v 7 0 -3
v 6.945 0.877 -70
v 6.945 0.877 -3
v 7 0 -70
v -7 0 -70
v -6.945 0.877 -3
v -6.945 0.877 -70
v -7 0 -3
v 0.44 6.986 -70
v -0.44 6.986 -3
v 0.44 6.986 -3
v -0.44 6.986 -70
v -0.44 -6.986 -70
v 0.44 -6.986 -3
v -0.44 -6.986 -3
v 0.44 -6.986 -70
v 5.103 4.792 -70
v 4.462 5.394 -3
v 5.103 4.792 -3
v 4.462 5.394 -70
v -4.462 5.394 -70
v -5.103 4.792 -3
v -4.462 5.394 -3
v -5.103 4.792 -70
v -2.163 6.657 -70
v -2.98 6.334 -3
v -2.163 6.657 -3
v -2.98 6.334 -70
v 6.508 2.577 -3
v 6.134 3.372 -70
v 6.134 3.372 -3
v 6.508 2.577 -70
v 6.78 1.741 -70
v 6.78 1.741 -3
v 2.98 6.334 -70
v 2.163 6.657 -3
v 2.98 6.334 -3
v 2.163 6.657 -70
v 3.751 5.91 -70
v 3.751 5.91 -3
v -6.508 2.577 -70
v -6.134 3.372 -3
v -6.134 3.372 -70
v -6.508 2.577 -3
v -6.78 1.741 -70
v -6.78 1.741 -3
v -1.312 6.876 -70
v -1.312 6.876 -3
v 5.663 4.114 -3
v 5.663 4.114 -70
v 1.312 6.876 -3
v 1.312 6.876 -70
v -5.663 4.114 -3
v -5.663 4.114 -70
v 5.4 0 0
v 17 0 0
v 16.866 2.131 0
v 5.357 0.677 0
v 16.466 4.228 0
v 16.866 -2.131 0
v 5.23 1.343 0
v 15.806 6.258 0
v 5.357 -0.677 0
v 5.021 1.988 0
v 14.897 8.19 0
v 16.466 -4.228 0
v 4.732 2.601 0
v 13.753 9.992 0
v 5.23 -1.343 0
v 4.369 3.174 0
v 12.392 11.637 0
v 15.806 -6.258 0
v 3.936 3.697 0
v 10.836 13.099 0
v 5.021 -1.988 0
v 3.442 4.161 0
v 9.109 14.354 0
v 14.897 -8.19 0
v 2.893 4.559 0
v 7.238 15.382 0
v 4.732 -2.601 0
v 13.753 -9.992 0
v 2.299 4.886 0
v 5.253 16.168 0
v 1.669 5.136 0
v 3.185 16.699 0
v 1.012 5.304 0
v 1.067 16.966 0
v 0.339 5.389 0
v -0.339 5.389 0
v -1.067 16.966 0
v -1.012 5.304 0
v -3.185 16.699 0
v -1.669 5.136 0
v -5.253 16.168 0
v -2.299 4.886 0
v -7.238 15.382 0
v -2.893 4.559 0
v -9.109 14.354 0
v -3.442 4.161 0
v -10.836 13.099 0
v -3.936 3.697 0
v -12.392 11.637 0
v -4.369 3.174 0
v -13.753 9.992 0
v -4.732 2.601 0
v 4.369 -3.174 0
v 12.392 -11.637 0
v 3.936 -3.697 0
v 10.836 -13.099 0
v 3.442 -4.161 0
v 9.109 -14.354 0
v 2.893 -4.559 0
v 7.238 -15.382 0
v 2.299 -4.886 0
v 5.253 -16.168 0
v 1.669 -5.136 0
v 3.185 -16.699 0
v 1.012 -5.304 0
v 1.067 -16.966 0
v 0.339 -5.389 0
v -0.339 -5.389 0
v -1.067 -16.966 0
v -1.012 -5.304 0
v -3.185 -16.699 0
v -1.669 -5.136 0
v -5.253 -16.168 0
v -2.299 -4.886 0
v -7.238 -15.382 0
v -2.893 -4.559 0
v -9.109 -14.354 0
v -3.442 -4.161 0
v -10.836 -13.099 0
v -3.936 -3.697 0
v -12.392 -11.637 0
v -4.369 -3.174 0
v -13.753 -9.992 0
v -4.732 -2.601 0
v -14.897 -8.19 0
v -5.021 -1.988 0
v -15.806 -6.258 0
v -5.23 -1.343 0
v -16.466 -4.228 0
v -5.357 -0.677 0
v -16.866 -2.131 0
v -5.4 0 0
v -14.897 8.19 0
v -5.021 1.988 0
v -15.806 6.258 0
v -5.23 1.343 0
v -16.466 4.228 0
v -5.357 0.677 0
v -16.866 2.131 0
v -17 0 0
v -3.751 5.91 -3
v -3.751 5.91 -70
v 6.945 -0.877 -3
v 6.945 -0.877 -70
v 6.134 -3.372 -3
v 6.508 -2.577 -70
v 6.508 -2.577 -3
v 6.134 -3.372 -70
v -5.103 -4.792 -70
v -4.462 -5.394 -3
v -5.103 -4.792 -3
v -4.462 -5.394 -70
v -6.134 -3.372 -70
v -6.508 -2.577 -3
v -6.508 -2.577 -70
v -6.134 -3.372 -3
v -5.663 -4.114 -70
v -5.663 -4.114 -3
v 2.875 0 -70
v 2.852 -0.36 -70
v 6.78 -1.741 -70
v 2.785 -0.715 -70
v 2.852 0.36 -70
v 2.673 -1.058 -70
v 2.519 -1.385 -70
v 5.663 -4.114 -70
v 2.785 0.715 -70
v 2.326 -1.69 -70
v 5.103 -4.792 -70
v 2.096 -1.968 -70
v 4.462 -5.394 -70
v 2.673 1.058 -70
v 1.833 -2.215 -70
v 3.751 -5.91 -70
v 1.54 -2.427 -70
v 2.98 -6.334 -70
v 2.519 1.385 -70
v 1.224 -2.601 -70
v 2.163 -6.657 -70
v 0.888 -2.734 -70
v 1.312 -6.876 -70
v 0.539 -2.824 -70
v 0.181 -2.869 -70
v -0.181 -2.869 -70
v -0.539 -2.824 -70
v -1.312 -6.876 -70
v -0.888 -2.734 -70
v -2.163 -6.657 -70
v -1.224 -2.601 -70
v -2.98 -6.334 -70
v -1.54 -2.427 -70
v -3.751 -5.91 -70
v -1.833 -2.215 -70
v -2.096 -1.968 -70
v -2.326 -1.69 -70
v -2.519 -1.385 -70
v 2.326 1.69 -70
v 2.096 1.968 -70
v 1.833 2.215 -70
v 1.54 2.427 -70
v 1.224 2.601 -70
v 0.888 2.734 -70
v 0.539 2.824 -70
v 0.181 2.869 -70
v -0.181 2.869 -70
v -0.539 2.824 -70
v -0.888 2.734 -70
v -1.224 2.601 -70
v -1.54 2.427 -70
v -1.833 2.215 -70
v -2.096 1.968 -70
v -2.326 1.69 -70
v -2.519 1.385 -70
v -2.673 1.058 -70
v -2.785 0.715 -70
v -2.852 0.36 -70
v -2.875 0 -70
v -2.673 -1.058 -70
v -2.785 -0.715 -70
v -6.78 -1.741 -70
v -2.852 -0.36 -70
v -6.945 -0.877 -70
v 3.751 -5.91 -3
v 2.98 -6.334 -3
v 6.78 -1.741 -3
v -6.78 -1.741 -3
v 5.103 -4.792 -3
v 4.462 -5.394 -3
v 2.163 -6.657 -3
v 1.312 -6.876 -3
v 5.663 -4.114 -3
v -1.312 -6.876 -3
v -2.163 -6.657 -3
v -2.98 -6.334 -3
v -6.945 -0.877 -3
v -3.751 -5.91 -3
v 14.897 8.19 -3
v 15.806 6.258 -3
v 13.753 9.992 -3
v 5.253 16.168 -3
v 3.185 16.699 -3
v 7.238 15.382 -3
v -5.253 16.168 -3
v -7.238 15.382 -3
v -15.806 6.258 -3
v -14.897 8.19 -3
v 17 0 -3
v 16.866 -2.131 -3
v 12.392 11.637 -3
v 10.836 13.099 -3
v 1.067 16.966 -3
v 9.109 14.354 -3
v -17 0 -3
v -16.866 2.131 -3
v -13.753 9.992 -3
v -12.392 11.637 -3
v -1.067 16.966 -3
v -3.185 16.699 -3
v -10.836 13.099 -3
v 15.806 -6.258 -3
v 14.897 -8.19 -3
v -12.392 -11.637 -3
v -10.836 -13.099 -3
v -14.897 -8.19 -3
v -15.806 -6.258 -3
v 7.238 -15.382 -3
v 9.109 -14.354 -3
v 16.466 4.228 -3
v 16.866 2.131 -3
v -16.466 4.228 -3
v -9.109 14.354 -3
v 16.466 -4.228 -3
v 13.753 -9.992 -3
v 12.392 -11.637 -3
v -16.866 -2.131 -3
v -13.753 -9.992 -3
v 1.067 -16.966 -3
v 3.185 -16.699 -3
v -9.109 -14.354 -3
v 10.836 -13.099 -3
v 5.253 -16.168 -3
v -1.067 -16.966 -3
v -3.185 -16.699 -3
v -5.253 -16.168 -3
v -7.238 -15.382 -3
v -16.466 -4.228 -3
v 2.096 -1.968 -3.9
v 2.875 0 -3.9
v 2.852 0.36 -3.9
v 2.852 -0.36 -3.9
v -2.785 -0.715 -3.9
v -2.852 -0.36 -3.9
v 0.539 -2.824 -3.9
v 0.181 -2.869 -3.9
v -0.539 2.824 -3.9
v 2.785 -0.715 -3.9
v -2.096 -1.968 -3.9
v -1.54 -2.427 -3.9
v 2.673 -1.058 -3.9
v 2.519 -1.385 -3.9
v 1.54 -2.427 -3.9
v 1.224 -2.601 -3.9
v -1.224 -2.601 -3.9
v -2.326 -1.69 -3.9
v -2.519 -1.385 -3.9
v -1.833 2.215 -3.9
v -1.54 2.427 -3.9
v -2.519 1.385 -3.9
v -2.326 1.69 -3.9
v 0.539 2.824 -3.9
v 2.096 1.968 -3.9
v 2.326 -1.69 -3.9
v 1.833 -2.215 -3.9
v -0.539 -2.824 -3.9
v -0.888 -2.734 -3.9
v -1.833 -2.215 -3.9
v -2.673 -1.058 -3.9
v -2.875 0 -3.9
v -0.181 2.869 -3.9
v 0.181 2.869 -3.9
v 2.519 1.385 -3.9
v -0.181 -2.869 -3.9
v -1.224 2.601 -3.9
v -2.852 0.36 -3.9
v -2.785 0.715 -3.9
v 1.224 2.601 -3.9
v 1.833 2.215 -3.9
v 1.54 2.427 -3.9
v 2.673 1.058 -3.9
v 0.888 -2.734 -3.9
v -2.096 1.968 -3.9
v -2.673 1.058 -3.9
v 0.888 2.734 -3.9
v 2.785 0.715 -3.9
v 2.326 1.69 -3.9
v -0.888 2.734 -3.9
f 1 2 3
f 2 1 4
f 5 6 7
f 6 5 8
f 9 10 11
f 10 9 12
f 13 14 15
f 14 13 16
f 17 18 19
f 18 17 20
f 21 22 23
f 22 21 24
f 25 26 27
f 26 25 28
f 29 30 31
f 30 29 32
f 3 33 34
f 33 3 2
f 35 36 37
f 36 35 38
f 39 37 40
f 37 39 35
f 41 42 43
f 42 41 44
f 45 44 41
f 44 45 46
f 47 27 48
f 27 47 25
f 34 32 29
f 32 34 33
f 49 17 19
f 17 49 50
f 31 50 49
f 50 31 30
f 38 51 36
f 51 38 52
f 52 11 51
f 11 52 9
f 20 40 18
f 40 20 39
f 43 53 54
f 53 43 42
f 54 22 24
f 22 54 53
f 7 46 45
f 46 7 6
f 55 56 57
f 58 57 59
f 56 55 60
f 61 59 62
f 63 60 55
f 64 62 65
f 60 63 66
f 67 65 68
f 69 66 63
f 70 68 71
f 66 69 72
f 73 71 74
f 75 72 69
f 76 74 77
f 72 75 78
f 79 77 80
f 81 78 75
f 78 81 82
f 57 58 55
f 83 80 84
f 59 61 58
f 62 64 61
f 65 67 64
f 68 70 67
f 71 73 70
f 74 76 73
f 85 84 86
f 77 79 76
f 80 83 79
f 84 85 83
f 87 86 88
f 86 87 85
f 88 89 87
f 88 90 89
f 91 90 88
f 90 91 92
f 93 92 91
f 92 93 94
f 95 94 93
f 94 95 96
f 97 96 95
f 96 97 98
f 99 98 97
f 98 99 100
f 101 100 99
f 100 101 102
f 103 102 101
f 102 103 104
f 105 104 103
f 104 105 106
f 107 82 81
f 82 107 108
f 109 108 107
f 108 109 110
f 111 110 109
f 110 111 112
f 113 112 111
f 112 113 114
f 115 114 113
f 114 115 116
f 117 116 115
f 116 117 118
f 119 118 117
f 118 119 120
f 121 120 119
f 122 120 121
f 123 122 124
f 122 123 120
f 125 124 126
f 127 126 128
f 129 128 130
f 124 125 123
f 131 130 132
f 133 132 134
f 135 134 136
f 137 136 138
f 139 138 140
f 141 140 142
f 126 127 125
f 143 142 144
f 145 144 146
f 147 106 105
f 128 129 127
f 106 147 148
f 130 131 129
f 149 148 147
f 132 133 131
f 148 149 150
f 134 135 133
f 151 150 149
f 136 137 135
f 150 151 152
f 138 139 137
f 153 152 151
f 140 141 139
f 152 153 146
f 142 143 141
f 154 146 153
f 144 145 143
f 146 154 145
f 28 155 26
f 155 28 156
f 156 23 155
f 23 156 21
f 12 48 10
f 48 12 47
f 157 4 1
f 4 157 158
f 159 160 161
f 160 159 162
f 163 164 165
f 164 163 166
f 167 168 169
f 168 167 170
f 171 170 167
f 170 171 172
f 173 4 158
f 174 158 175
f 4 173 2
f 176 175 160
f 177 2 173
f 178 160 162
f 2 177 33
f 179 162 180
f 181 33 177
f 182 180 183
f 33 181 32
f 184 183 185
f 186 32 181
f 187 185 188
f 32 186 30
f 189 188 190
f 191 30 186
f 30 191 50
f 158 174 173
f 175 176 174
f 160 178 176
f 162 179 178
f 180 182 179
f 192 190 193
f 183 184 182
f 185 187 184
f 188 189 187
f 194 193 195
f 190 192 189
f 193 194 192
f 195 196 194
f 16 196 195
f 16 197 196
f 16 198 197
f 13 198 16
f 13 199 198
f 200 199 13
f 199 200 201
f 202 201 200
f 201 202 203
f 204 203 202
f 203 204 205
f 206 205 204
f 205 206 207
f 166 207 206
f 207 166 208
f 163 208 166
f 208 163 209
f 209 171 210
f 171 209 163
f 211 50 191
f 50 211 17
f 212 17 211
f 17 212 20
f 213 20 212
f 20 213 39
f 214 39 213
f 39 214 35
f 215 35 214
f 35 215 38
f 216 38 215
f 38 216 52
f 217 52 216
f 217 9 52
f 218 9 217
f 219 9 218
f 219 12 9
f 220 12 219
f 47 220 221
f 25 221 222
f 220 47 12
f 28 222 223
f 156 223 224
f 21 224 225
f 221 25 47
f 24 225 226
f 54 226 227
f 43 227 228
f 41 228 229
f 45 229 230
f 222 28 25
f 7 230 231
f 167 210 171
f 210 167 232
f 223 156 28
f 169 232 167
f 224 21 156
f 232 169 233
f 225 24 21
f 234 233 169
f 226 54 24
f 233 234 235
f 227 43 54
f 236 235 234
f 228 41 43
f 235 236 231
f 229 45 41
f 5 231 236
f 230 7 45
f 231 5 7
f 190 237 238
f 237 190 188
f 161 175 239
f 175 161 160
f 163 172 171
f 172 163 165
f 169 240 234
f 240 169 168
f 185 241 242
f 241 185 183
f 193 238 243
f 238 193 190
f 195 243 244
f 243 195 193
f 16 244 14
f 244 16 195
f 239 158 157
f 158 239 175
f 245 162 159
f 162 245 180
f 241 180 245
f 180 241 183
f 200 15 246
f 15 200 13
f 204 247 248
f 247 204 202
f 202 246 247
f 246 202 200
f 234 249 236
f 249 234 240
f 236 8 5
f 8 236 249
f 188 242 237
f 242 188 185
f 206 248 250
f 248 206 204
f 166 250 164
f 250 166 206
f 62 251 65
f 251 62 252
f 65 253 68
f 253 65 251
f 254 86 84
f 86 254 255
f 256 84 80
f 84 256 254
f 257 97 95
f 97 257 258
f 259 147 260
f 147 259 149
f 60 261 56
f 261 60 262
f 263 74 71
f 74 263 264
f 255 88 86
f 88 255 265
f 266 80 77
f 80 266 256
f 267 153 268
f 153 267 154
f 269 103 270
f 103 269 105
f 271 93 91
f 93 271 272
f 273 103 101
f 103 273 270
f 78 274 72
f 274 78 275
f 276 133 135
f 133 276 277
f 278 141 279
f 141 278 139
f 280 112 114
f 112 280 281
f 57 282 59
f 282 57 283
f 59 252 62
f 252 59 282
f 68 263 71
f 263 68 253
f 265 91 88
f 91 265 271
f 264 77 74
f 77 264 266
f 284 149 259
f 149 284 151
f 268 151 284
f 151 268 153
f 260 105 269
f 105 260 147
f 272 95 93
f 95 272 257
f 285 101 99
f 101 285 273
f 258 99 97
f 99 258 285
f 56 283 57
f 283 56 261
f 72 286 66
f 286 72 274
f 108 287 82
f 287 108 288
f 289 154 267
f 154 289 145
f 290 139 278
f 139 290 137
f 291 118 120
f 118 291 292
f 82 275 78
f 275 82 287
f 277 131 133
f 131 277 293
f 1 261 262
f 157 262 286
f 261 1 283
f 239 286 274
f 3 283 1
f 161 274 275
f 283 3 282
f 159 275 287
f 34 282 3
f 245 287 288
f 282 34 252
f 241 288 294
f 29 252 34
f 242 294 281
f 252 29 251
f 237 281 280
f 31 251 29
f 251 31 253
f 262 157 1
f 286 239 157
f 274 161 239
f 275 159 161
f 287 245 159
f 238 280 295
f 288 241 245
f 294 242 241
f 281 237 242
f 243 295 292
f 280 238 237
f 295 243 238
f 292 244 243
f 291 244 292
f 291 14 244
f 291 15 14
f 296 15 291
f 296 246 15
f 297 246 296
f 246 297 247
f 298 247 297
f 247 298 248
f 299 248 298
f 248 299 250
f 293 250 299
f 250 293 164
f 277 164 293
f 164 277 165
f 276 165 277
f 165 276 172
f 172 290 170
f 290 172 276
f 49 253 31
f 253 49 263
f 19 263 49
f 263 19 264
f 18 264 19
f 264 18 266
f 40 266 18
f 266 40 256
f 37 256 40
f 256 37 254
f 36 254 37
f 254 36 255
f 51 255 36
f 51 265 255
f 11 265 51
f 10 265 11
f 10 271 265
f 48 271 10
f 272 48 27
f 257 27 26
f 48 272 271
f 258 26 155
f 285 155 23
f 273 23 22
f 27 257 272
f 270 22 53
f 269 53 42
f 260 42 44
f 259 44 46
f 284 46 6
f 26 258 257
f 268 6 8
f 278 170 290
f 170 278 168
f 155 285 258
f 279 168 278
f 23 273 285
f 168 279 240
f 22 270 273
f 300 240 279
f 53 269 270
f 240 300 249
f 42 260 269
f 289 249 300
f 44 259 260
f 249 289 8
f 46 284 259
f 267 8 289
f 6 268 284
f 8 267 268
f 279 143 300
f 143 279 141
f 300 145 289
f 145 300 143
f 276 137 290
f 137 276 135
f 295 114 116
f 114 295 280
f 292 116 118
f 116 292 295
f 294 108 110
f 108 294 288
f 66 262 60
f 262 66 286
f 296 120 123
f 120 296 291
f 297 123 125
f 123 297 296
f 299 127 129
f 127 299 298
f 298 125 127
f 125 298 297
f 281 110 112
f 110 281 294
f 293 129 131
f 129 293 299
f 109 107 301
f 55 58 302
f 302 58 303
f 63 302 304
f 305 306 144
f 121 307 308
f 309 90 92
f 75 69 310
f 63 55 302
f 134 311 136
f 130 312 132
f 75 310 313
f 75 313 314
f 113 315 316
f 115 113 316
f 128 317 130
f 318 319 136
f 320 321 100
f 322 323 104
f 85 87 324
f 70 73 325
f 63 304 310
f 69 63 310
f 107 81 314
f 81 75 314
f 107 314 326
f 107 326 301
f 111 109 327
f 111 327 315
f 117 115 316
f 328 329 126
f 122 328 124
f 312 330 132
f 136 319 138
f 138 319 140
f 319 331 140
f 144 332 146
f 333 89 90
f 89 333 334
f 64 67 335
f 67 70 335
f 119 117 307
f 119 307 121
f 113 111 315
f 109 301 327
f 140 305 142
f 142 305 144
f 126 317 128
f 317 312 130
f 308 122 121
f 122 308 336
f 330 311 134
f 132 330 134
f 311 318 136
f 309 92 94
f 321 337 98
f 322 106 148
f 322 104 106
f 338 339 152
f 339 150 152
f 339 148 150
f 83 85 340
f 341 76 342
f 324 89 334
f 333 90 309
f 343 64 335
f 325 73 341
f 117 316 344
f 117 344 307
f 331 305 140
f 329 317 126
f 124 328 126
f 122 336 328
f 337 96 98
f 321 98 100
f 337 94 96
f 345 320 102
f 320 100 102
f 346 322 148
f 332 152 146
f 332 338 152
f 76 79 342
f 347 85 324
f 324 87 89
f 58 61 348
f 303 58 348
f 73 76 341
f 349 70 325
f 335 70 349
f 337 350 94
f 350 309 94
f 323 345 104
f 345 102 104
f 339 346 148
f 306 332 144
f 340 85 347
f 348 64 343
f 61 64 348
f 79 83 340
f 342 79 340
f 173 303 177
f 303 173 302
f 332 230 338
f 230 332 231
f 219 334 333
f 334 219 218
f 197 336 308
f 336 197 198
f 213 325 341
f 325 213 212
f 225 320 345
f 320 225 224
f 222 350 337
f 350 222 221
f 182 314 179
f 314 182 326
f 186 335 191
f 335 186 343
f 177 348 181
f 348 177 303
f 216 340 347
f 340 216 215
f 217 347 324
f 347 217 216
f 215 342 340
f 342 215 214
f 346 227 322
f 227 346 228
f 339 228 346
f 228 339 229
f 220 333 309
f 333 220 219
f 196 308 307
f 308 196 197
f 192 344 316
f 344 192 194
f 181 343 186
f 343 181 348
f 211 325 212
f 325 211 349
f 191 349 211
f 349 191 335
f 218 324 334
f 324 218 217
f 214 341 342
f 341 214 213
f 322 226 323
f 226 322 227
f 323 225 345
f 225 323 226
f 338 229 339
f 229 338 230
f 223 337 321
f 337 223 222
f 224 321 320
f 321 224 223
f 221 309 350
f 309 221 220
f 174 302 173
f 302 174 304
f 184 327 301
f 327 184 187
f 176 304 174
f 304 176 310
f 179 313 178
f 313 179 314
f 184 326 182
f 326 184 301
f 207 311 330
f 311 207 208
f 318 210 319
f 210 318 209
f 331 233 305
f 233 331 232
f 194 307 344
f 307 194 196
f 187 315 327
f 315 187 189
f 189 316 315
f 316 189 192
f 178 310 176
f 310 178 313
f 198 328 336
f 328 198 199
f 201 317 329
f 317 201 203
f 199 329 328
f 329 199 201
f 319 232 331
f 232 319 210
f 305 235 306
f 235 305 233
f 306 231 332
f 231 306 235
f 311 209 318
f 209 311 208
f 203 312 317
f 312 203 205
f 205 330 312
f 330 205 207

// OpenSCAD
$fn = 50;


difference() {
	union() {
		translate(v = [0, 0, -70.0000000000]) {
			cylinder(h = 70, r = 7.0000000000);
		}
		translate(v = [0, 0, -3.0000000000]) {
			cylinder(h = 3, r = 17.0000000000);
		}
	}
	union() {
		translate(v = [0, 0, 0]) {
			rotate(a = [0, 0, 0]) {
				difference() {
					union() {
						#translate(v = [0, 0, -70.0000000000]) {
							cylinder(h = 70, r = 2.6000000000);
						}
						#translate(v = [0, 0, -3.9000000000]) {
							cylinder(h = 3.9000000000, r = 7.0000000000, r1 = 2.8750000000, r2 = 5.4000000000);
						}
						#translate(v = [0, 0, -70.0000000000]) {
							cylinder(h = 70, r = 2.8750000000);
						}
						#translate(v = [0, 0, -70.0000000000]) {
							cylinder(h = 70, r = 2.6000000000);
						}
					}
					union();
				}
			}
		}
	}
}
